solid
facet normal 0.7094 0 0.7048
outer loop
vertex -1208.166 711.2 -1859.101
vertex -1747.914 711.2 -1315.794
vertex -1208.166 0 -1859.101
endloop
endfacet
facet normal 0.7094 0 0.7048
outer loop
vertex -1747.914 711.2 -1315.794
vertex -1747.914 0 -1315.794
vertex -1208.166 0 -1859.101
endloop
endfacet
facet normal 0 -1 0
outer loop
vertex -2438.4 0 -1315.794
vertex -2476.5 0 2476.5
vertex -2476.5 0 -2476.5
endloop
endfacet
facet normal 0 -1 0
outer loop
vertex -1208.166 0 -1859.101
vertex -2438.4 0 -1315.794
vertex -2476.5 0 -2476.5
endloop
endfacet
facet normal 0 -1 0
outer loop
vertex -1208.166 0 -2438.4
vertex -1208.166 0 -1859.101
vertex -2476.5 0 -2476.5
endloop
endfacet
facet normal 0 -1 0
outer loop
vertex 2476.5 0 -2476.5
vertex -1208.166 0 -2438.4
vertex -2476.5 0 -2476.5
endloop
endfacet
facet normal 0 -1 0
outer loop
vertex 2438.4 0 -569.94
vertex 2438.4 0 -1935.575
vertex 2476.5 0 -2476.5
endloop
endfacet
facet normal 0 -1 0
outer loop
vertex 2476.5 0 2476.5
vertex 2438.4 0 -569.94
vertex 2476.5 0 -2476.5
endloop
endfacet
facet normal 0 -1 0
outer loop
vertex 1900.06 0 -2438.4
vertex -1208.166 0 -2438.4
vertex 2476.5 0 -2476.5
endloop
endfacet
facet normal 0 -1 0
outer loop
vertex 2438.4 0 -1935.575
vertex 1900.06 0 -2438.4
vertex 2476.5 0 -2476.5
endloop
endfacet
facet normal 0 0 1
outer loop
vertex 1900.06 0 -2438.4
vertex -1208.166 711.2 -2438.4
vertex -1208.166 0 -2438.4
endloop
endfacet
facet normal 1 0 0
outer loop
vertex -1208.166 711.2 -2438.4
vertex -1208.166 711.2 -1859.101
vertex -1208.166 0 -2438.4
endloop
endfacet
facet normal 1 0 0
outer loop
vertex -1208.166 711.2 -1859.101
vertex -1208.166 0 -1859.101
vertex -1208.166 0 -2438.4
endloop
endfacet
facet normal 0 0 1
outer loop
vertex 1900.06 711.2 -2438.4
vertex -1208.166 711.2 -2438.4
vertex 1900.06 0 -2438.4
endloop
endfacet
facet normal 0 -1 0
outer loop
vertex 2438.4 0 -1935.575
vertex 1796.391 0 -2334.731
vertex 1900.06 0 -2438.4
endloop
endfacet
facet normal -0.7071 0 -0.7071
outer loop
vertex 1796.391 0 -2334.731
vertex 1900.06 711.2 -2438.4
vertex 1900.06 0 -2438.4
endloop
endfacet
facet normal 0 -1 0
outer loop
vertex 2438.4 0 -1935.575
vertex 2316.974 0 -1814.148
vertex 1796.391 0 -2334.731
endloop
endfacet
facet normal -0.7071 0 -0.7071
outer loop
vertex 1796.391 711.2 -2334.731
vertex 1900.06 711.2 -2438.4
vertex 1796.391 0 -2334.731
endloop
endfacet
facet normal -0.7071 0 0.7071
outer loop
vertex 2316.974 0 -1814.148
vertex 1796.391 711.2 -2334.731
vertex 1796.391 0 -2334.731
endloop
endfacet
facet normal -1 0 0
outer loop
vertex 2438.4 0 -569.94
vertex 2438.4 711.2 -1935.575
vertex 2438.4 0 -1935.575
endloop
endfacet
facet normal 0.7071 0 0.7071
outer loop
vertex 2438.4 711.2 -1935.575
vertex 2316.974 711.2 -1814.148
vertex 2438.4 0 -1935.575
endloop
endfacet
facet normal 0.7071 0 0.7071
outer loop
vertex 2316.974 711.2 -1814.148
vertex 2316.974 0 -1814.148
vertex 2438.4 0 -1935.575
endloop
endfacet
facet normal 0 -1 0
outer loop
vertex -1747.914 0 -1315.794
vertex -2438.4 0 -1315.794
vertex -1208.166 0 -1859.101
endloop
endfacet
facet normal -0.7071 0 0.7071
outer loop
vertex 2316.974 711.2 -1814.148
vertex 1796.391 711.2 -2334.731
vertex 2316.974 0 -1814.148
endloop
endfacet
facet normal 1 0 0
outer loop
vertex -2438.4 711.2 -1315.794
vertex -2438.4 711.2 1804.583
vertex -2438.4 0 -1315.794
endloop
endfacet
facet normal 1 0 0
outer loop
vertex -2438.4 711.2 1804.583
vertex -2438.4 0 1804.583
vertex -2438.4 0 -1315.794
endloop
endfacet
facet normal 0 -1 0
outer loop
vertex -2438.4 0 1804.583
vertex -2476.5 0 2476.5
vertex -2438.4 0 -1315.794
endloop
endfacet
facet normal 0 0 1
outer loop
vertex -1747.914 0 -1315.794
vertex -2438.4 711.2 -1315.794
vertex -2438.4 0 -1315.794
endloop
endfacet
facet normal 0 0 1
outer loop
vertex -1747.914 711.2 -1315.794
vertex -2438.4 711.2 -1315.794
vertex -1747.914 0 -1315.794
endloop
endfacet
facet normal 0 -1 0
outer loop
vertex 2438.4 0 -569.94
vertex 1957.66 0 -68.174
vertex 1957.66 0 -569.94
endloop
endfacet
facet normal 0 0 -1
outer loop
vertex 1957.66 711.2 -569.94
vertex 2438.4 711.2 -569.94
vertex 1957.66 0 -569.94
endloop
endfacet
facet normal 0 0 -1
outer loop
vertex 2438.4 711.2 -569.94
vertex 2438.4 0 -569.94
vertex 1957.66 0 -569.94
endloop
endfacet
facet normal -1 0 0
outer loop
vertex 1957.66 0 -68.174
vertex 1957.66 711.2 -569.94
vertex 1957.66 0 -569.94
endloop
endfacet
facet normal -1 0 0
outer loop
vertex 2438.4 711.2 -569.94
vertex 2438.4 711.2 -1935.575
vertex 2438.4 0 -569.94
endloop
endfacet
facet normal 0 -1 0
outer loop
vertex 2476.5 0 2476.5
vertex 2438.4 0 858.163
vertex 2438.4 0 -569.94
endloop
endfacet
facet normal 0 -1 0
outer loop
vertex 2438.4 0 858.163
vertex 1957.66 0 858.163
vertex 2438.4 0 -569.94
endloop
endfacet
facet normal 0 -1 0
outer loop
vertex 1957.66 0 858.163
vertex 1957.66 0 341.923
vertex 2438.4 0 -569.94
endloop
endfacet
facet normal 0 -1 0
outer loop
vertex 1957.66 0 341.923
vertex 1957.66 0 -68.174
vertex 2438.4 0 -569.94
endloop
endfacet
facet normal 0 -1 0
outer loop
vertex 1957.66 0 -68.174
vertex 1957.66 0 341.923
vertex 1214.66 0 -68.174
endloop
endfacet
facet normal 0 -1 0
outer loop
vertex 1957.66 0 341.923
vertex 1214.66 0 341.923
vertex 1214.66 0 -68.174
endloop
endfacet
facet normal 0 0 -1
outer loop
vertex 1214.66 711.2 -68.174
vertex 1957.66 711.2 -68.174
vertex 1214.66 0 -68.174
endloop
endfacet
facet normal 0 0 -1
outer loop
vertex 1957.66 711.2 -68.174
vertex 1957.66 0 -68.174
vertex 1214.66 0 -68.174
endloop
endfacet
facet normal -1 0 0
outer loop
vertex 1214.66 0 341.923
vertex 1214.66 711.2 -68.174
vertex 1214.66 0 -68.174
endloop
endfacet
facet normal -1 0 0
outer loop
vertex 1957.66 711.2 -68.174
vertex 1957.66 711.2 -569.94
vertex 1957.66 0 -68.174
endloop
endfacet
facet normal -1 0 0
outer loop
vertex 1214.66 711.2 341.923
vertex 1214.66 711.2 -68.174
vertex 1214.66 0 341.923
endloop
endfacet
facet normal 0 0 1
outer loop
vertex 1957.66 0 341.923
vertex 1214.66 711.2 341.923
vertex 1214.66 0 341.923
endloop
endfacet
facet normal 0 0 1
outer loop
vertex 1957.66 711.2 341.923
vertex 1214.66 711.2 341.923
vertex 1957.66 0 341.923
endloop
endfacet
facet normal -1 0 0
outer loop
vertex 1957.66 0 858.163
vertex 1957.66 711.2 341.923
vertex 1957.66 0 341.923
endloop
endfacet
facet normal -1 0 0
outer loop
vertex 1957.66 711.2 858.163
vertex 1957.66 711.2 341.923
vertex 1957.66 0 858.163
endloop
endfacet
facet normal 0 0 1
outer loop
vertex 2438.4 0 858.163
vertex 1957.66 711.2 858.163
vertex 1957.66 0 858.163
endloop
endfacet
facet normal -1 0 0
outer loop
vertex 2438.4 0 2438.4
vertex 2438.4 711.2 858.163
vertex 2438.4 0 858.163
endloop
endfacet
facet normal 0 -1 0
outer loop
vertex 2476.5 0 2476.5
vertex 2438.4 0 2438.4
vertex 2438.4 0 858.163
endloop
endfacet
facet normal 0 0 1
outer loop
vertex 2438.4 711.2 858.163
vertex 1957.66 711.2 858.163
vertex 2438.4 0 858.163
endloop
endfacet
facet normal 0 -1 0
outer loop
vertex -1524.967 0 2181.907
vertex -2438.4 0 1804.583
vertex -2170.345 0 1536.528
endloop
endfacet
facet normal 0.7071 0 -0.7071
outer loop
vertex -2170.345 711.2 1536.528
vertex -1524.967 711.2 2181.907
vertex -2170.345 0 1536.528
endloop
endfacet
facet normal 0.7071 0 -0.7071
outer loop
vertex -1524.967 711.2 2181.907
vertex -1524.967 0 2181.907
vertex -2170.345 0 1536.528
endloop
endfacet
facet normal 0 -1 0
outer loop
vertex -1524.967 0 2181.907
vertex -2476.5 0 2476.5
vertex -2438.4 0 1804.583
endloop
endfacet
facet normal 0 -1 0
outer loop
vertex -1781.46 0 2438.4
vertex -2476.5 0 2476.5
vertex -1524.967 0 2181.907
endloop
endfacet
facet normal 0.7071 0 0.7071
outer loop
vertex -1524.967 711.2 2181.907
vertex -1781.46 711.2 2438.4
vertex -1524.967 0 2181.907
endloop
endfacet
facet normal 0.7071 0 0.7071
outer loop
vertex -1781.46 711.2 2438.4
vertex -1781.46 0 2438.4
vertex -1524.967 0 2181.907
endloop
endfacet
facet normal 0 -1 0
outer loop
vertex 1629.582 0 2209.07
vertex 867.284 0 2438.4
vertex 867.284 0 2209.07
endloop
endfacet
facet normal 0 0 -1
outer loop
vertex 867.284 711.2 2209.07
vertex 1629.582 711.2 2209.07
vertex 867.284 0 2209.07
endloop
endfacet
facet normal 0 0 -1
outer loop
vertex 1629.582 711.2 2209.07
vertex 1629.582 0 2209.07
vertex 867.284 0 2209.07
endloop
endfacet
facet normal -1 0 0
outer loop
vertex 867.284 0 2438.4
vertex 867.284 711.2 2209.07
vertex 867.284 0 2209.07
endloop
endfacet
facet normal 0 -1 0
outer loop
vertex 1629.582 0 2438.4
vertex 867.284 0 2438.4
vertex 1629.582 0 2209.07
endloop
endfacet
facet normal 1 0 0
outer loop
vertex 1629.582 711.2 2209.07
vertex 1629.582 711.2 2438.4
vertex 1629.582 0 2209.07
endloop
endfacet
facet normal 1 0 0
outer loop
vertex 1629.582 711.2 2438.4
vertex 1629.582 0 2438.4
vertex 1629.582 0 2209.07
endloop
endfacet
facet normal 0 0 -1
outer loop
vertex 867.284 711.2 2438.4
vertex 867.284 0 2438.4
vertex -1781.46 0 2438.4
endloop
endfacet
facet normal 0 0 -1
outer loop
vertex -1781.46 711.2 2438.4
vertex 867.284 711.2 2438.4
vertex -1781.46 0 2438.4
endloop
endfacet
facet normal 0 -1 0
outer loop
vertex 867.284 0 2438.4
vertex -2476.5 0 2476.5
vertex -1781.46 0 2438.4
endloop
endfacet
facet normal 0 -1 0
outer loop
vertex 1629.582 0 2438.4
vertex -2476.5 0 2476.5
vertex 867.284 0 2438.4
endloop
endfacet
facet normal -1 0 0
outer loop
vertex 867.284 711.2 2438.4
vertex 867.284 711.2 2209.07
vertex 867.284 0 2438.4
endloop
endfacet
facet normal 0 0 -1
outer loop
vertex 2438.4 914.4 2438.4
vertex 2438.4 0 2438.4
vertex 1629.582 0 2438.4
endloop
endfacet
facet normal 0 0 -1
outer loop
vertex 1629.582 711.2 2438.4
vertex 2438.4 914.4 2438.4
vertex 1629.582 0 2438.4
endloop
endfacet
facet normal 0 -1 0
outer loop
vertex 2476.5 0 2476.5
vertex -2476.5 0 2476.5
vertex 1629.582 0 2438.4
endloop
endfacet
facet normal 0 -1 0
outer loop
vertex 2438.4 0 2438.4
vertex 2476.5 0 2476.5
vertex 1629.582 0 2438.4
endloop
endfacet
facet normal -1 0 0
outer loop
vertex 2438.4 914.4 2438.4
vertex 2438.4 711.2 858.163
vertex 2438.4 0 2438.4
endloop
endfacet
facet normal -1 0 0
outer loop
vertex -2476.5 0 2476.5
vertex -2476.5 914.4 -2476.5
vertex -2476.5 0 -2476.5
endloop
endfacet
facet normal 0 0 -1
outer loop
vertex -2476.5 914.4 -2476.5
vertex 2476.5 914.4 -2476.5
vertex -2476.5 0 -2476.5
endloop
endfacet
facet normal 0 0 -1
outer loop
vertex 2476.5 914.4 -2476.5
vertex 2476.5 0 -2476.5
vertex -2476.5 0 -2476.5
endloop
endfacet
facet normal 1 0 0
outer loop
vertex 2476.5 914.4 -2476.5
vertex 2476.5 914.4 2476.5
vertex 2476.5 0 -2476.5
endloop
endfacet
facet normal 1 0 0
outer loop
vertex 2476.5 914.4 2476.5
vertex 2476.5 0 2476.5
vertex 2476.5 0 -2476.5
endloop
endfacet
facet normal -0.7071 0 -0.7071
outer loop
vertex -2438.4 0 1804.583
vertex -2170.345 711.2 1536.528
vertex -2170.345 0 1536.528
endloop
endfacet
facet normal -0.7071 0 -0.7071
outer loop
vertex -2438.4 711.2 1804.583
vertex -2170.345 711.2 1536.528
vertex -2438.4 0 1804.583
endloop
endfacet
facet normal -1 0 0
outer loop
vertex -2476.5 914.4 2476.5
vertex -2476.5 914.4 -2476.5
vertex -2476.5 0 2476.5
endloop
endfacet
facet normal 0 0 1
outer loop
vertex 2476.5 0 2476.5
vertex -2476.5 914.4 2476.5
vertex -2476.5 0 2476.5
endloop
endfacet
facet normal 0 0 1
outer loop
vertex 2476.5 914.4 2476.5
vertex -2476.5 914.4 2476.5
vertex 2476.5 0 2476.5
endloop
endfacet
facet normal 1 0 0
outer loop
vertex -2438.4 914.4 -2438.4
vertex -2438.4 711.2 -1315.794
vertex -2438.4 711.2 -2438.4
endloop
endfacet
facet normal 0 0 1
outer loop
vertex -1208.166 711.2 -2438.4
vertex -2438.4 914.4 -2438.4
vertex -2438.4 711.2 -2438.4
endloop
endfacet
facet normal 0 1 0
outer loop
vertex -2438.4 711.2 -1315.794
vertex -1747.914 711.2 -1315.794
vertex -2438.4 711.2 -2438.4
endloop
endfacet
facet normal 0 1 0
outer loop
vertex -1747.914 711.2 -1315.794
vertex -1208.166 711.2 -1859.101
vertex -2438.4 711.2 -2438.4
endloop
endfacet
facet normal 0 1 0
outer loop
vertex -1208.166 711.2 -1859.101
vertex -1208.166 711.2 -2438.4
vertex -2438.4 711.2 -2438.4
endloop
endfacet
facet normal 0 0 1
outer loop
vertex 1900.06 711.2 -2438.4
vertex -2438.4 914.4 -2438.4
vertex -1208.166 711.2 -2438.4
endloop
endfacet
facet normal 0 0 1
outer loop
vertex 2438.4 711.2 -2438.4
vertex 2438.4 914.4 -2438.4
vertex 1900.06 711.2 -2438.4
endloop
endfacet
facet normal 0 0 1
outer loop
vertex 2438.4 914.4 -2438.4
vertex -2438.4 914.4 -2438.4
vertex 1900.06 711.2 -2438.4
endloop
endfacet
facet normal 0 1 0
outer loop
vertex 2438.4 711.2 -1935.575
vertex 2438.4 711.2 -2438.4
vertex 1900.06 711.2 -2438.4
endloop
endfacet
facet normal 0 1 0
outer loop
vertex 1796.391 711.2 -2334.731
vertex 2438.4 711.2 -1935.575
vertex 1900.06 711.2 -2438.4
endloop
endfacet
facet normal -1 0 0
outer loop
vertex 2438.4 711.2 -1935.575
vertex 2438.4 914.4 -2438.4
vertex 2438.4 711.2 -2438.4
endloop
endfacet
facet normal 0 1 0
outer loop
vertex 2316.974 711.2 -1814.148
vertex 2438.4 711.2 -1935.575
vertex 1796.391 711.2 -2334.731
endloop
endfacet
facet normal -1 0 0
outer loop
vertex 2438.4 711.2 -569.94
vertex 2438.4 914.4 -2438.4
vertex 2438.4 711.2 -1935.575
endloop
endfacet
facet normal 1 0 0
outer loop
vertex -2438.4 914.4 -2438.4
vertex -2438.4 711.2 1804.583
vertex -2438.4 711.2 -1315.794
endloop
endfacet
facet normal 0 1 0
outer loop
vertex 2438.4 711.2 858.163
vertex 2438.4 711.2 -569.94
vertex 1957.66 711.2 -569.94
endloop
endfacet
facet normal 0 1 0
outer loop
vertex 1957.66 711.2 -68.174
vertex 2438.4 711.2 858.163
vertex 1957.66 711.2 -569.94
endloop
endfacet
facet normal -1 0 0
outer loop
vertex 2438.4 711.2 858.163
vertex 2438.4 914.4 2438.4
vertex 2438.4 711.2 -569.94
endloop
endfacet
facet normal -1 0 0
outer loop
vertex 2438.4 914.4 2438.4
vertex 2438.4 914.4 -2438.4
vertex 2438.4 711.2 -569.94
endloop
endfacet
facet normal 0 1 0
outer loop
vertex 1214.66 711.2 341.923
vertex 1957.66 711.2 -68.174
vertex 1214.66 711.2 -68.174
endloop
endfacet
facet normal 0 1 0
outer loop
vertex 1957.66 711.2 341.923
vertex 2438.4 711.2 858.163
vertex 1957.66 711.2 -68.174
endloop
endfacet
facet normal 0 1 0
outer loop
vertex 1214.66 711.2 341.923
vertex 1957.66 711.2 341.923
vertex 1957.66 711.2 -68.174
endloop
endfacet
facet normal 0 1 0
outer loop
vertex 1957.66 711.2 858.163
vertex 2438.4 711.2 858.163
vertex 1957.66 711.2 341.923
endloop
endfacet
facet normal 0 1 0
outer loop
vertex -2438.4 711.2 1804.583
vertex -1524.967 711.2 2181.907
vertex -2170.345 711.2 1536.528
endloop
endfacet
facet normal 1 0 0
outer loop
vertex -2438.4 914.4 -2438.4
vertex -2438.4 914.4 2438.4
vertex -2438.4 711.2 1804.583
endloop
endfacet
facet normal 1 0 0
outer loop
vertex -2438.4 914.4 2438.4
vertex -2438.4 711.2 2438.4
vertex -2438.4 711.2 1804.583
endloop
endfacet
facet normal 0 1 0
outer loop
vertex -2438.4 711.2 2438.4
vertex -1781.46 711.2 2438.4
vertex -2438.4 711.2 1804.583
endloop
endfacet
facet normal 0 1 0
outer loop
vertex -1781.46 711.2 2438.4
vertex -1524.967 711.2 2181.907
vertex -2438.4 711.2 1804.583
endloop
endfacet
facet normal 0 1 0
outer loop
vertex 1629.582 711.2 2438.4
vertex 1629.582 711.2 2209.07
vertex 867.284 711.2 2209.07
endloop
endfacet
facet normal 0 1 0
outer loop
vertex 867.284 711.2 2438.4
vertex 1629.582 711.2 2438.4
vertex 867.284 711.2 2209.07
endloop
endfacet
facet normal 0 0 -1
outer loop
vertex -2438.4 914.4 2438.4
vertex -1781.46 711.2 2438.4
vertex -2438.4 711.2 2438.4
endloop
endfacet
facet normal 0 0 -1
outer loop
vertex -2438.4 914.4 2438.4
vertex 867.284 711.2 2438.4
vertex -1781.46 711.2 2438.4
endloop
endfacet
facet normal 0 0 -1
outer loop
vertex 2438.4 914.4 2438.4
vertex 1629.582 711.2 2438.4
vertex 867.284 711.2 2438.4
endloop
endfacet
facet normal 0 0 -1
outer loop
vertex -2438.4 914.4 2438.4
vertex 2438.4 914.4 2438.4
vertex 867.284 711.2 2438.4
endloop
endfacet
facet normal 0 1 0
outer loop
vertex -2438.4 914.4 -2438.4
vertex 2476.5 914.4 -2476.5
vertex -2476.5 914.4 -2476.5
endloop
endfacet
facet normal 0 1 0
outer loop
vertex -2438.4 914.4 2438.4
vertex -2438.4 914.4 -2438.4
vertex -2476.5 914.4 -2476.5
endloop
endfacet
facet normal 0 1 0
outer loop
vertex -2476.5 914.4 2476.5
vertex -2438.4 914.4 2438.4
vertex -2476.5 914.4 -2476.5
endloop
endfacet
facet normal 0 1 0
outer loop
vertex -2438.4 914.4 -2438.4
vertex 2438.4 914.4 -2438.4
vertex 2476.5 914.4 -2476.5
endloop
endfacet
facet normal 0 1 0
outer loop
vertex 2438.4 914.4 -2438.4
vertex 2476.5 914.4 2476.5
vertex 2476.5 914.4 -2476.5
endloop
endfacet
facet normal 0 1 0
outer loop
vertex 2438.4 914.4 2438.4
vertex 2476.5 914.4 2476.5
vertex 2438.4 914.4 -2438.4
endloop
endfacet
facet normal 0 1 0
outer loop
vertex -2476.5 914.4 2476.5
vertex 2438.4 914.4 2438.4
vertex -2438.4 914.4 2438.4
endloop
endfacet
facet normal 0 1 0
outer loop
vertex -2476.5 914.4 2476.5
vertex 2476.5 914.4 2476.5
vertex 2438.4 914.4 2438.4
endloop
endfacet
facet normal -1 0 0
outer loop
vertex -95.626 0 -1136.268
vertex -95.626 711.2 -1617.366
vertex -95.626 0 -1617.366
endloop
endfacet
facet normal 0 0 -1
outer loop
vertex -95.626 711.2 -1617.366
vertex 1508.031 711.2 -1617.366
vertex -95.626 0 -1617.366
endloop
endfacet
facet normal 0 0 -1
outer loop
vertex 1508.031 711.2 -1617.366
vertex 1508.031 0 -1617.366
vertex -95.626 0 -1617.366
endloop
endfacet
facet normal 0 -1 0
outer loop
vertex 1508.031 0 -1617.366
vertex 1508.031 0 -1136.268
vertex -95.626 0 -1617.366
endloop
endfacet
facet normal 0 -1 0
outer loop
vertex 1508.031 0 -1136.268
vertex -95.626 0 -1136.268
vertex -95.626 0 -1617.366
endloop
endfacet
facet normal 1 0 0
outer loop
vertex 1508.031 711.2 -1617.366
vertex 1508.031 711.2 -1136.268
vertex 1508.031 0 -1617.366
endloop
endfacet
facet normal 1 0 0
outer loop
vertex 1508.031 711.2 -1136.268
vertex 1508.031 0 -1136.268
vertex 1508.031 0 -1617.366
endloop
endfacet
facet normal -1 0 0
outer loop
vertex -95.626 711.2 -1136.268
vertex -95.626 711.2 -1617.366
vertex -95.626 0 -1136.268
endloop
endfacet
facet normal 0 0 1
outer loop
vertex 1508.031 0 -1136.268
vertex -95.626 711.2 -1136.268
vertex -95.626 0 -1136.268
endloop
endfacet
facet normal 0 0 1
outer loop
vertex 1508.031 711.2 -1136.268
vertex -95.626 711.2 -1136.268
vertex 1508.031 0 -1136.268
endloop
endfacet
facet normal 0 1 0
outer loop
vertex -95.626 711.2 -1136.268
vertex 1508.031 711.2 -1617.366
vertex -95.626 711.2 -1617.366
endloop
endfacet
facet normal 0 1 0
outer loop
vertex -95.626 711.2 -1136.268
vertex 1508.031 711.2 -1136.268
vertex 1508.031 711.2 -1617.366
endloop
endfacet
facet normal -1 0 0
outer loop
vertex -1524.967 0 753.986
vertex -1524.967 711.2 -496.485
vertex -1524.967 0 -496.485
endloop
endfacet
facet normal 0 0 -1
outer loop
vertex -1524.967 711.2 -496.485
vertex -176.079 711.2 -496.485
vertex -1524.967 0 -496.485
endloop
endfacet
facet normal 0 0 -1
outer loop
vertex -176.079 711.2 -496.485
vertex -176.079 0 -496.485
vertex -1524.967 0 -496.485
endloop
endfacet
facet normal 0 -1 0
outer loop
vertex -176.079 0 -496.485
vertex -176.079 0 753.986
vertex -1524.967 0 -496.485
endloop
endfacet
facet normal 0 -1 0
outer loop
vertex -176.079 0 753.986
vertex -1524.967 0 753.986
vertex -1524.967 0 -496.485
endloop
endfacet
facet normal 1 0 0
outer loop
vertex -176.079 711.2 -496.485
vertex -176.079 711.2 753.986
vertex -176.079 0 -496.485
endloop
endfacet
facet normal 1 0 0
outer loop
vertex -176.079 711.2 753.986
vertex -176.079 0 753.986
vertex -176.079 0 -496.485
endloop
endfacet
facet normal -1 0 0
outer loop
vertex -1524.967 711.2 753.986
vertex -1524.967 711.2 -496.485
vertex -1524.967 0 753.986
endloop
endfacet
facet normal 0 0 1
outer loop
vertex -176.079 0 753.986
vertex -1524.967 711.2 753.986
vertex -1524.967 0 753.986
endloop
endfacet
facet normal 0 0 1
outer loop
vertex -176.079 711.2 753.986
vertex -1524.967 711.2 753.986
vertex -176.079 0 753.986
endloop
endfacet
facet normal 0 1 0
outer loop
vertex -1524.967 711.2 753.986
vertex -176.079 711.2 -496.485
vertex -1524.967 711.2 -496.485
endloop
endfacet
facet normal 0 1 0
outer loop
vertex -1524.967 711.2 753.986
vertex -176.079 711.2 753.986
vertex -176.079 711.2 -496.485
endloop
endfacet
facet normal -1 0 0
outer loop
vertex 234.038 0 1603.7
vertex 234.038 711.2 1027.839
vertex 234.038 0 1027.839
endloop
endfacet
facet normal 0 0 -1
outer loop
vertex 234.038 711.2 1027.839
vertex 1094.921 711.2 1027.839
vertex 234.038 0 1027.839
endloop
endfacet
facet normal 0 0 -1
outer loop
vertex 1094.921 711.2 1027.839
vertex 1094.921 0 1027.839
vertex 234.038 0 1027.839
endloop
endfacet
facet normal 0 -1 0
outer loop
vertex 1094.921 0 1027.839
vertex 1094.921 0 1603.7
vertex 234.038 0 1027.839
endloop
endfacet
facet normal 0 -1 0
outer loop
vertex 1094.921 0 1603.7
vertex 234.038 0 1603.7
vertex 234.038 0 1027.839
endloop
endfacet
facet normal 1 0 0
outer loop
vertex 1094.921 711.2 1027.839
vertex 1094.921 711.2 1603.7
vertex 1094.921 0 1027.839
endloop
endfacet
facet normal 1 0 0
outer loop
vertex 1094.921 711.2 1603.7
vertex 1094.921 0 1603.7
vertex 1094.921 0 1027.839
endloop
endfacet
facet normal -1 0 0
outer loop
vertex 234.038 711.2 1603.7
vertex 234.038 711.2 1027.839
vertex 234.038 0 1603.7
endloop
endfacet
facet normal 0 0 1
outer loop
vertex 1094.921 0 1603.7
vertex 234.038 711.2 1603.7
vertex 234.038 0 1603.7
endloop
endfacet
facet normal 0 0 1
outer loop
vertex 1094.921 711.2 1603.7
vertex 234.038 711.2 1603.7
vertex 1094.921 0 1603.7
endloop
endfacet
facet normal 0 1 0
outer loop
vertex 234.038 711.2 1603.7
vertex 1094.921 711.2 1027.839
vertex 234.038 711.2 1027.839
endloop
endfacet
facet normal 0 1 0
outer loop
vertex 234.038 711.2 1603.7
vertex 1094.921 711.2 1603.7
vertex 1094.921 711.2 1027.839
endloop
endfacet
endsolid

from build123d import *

# Parameters (mm, degrees)
SKETCH1_W           = 4953
SKETCH1_H           = 4953
SKETCH1_W_2         = 4876.8
SKETCH1_H_2         = 4876.8
BOSS_EXTRUDE1_DEPTH = 914.4
SKETCH3_W           = 1603.657967537
SKETCH3_H           = 481.097390261
SKETCH3_W_2         = 1348.887721916
SKETCH3_H_2         = 1250.471021175
SKETCH3_W_3         = 860.88354889
SKETCH3_H_3         = 575.861292838
SKETCH3_W_4         = 762.297956926
SKETCH3_H_4         = 229.329668114
BOSS_EXTRUDE2_DEPTH = 711.2


with BuildPart() as part:
    # Sketch1 → Boss-Extrude1 (new body)
    with BuildSketch(Plane(origin=(0, 0, 0), x_dir=(1, 0, 0), z_dir=(0, 1, 0))):
        Rectangle(SKETCH1_W, SKETCH1_H)
        Rectangle(SKETCH1_W_2, SKETCH1_H_2, mode=Mode.SUBTRACT)
    extrude(amount=BOSS_EXTRUDE1_DEPTH)

    # Sketch3 → Boss-Extrude2 (add)
    with BuildSketch(Plane(origin=(0, 0, 0), x_dir=(1, 0, 0), z_dir=(0, 1, 0))):
        Polygon((-1208.166340479, 2438.4), (-1208.166340479, 1859.100828323), (-1747.914241925, 1315.794340557), (-2438.4, 1315.794340557), (-2438.4, 2438.4), align=None)
        Polygon((1900.060182517, 2438.4), (1796.390856931, 2334.730674414), (2316.973334208, 1814.148197136), (2438.4, 1935.574862928), (2438.4, 2438.4), align=None)
        with Locations((706.202427143, 1376.817191918)):
            Rectangle(SKETCH3_W, SKETCH3_H)
        with Locations((-850.522821308, -128.750138427)):
            Rectangle(SKETCH3_W_2, SKETCH3_H_2)
        with Locations((664.479751449, -1315.769786399)):
            Rectangle(SKETCH3_W_3, SKETCH3_H_3)
        Polygon((2438.4, 569.939941463), (1957.659619596, 569.939941463), (1957.659619596, 68.174197664), (1214.660345125, 68.174197664), (1214.660345125, -341.92280448), (1957.659619596, -341.92280448), (1957.659619596, -858.162560119), (2438.4, -858.162560119), align=None)
        with Locations((1248.433039419, -2323.735165943)):
            Rectangle(SKETCH3_W_4, SKETCH3_H_4)
        Polygon((-1781.46010583, -2438.4), (-1524.966682266, -2181.906576436), (-2170.345283803, -1536.527974899), (-2438.4, -1804.582691096), (-2438.4, -2438.4), align=None)
    extrude(amount=BOSS_EXTRUDE2_DEPTH)


solid = part.part
